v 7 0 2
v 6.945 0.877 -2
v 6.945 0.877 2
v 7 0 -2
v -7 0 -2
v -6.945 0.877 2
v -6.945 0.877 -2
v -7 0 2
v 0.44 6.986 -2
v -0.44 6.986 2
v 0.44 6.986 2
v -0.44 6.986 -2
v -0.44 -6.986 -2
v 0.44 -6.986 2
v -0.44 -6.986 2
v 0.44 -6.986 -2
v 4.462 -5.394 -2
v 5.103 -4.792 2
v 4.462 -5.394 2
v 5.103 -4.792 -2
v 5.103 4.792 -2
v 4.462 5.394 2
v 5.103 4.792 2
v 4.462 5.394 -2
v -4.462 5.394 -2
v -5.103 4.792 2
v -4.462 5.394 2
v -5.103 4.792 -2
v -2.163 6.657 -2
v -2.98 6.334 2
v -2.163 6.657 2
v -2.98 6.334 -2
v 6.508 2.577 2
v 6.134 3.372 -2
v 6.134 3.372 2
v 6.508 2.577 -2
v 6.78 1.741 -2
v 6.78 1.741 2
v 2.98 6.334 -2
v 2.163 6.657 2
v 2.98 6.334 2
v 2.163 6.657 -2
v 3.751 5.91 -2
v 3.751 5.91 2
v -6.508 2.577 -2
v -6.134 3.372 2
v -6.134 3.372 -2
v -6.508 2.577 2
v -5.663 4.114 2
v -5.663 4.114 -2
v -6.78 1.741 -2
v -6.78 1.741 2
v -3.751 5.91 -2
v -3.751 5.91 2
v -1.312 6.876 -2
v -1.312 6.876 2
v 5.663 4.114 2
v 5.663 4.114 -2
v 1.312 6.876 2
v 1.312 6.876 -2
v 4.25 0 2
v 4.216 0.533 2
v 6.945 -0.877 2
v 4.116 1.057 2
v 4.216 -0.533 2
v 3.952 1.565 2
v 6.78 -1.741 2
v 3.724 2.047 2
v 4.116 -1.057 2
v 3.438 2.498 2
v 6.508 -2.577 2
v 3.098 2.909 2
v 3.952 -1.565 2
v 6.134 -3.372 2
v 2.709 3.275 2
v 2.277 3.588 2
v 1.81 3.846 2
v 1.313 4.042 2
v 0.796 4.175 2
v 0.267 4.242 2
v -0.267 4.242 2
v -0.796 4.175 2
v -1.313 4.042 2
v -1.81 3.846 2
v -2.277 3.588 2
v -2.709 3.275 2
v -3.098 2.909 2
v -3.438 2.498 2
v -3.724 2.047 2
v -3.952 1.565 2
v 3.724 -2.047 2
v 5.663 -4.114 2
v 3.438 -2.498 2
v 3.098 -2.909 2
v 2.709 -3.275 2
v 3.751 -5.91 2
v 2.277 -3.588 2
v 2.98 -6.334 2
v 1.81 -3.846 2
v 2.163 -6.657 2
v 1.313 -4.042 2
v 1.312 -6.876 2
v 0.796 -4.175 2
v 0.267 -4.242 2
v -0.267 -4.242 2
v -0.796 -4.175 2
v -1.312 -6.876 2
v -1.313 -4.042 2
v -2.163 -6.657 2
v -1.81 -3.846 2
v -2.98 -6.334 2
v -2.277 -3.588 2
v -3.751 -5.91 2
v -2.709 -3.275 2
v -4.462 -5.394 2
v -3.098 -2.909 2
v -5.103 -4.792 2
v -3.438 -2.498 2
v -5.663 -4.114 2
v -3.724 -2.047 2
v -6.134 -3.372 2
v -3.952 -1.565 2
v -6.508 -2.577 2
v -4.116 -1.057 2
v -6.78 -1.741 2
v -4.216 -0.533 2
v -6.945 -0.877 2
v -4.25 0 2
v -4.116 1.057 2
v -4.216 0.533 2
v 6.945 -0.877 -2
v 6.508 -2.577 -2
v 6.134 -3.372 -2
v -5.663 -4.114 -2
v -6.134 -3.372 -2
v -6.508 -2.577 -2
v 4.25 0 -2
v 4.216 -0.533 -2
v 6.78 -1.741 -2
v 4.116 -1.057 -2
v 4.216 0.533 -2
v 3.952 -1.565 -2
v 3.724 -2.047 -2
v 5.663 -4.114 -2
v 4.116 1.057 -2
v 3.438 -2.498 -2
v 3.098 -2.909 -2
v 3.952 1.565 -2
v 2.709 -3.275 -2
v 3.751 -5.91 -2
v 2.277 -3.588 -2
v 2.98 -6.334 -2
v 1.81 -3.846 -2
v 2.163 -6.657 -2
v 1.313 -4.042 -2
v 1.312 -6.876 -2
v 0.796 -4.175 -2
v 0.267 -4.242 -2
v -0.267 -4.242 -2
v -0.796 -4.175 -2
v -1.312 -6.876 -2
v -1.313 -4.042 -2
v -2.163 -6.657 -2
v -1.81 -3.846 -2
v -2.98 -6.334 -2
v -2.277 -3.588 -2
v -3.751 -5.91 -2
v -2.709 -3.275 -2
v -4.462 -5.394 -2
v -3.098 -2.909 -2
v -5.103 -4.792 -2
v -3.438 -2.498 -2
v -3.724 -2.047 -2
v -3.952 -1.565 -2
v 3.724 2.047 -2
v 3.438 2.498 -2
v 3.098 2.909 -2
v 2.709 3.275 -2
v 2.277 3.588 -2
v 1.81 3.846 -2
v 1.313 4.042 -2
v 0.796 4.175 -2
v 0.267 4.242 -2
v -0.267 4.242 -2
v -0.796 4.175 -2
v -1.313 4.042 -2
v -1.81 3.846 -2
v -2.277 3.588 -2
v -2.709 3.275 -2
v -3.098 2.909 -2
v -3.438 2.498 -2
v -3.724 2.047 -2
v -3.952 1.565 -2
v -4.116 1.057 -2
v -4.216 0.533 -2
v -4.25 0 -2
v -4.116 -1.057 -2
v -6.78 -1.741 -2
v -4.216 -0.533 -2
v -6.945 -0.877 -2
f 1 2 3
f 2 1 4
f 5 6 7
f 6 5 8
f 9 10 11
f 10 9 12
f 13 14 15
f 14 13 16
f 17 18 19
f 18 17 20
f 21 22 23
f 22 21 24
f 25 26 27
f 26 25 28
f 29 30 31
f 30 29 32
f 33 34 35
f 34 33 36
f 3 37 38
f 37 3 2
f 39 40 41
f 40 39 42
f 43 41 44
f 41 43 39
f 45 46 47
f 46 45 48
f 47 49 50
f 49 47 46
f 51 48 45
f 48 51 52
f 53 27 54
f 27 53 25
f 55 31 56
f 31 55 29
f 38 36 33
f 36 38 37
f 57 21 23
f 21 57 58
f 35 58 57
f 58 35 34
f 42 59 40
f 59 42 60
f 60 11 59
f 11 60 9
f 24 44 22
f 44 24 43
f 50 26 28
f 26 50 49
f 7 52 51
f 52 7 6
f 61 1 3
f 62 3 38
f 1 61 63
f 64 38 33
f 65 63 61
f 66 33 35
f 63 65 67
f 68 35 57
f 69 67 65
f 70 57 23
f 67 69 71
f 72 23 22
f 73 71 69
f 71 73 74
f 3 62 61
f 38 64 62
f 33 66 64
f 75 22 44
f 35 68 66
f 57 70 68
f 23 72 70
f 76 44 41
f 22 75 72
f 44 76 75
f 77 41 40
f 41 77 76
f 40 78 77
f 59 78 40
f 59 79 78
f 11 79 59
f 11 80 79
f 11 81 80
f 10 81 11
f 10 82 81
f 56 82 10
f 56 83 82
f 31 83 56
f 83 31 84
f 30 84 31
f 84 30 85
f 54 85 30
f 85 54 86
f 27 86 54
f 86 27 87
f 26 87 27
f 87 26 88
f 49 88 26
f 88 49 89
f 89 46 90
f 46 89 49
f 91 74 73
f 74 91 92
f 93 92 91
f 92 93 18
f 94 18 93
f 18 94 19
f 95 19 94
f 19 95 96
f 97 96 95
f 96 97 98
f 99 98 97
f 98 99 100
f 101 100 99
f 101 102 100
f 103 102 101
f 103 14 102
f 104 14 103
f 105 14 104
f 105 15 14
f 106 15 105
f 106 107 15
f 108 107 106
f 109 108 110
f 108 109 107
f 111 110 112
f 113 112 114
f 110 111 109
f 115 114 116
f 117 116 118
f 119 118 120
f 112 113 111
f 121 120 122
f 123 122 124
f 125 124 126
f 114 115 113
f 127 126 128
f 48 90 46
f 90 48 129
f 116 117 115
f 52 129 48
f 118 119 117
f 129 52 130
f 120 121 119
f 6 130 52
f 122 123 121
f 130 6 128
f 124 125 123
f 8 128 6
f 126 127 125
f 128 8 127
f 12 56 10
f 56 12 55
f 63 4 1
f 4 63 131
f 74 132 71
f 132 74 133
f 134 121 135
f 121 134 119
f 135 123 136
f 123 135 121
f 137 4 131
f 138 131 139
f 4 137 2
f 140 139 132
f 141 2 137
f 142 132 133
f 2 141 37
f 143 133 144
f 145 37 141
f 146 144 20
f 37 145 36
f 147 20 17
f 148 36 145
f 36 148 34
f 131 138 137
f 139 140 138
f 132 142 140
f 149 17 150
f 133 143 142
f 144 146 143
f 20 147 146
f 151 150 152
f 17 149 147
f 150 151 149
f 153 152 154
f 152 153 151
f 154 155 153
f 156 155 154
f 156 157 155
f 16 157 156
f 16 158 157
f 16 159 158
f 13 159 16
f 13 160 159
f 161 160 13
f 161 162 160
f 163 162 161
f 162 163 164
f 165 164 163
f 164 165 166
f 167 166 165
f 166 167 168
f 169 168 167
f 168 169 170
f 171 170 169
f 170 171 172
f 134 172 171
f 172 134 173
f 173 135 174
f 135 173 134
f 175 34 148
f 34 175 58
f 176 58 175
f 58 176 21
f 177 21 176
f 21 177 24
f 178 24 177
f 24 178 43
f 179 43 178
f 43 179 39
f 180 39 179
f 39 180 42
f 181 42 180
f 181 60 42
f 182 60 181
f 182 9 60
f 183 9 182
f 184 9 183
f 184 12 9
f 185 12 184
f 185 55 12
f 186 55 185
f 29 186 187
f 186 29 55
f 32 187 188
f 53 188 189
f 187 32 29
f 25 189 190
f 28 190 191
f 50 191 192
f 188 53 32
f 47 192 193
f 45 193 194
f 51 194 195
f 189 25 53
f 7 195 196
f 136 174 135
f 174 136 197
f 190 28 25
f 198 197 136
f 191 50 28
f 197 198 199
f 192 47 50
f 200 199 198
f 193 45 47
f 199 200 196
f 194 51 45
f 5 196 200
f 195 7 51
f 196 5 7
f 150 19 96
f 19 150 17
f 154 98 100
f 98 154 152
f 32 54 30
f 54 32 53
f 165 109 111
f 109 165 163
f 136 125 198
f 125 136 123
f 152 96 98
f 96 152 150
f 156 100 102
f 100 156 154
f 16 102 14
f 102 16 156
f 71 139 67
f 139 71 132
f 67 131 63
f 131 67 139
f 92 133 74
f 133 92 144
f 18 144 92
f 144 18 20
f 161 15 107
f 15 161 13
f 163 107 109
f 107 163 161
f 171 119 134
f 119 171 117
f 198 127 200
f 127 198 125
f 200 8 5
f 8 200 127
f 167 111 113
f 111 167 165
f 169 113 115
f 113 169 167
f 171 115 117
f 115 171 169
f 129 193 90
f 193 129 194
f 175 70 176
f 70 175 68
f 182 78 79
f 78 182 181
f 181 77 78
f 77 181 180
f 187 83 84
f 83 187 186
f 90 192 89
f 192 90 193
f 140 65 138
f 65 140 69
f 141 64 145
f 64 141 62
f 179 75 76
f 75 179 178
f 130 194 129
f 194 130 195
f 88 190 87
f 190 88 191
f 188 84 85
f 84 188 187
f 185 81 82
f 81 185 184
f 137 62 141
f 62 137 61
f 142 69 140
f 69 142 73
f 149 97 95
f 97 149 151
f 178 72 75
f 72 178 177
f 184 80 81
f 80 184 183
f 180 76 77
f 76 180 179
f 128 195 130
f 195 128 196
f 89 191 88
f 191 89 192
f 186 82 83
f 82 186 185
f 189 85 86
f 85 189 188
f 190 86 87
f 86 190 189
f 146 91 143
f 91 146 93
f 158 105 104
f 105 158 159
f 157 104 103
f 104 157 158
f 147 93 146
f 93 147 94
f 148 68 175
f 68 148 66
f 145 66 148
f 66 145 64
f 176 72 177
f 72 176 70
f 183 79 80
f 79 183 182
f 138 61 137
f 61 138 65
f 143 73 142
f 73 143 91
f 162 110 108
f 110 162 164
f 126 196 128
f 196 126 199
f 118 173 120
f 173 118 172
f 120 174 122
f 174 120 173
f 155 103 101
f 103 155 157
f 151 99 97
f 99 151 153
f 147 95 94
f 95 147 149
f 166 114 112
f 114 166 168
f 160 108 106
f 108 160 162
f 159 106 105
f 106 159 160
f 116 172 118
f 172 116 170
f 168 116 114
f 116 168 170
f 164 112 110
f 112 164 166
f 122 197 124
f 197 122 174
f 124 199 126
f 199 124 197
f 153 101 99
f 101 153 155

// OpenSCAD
$fn = 50;


difference() {
	union() {
		translate(v = [0, 0, -2.0000000000]) {
			cylinder(h = 4, r = 7.0000000000);
		}
	}
	union() {
		translate(v = [0, 0, -100.0000000000]) {
			cylinder(h = 200, r = 4.2500000000);
		}
	}
}
